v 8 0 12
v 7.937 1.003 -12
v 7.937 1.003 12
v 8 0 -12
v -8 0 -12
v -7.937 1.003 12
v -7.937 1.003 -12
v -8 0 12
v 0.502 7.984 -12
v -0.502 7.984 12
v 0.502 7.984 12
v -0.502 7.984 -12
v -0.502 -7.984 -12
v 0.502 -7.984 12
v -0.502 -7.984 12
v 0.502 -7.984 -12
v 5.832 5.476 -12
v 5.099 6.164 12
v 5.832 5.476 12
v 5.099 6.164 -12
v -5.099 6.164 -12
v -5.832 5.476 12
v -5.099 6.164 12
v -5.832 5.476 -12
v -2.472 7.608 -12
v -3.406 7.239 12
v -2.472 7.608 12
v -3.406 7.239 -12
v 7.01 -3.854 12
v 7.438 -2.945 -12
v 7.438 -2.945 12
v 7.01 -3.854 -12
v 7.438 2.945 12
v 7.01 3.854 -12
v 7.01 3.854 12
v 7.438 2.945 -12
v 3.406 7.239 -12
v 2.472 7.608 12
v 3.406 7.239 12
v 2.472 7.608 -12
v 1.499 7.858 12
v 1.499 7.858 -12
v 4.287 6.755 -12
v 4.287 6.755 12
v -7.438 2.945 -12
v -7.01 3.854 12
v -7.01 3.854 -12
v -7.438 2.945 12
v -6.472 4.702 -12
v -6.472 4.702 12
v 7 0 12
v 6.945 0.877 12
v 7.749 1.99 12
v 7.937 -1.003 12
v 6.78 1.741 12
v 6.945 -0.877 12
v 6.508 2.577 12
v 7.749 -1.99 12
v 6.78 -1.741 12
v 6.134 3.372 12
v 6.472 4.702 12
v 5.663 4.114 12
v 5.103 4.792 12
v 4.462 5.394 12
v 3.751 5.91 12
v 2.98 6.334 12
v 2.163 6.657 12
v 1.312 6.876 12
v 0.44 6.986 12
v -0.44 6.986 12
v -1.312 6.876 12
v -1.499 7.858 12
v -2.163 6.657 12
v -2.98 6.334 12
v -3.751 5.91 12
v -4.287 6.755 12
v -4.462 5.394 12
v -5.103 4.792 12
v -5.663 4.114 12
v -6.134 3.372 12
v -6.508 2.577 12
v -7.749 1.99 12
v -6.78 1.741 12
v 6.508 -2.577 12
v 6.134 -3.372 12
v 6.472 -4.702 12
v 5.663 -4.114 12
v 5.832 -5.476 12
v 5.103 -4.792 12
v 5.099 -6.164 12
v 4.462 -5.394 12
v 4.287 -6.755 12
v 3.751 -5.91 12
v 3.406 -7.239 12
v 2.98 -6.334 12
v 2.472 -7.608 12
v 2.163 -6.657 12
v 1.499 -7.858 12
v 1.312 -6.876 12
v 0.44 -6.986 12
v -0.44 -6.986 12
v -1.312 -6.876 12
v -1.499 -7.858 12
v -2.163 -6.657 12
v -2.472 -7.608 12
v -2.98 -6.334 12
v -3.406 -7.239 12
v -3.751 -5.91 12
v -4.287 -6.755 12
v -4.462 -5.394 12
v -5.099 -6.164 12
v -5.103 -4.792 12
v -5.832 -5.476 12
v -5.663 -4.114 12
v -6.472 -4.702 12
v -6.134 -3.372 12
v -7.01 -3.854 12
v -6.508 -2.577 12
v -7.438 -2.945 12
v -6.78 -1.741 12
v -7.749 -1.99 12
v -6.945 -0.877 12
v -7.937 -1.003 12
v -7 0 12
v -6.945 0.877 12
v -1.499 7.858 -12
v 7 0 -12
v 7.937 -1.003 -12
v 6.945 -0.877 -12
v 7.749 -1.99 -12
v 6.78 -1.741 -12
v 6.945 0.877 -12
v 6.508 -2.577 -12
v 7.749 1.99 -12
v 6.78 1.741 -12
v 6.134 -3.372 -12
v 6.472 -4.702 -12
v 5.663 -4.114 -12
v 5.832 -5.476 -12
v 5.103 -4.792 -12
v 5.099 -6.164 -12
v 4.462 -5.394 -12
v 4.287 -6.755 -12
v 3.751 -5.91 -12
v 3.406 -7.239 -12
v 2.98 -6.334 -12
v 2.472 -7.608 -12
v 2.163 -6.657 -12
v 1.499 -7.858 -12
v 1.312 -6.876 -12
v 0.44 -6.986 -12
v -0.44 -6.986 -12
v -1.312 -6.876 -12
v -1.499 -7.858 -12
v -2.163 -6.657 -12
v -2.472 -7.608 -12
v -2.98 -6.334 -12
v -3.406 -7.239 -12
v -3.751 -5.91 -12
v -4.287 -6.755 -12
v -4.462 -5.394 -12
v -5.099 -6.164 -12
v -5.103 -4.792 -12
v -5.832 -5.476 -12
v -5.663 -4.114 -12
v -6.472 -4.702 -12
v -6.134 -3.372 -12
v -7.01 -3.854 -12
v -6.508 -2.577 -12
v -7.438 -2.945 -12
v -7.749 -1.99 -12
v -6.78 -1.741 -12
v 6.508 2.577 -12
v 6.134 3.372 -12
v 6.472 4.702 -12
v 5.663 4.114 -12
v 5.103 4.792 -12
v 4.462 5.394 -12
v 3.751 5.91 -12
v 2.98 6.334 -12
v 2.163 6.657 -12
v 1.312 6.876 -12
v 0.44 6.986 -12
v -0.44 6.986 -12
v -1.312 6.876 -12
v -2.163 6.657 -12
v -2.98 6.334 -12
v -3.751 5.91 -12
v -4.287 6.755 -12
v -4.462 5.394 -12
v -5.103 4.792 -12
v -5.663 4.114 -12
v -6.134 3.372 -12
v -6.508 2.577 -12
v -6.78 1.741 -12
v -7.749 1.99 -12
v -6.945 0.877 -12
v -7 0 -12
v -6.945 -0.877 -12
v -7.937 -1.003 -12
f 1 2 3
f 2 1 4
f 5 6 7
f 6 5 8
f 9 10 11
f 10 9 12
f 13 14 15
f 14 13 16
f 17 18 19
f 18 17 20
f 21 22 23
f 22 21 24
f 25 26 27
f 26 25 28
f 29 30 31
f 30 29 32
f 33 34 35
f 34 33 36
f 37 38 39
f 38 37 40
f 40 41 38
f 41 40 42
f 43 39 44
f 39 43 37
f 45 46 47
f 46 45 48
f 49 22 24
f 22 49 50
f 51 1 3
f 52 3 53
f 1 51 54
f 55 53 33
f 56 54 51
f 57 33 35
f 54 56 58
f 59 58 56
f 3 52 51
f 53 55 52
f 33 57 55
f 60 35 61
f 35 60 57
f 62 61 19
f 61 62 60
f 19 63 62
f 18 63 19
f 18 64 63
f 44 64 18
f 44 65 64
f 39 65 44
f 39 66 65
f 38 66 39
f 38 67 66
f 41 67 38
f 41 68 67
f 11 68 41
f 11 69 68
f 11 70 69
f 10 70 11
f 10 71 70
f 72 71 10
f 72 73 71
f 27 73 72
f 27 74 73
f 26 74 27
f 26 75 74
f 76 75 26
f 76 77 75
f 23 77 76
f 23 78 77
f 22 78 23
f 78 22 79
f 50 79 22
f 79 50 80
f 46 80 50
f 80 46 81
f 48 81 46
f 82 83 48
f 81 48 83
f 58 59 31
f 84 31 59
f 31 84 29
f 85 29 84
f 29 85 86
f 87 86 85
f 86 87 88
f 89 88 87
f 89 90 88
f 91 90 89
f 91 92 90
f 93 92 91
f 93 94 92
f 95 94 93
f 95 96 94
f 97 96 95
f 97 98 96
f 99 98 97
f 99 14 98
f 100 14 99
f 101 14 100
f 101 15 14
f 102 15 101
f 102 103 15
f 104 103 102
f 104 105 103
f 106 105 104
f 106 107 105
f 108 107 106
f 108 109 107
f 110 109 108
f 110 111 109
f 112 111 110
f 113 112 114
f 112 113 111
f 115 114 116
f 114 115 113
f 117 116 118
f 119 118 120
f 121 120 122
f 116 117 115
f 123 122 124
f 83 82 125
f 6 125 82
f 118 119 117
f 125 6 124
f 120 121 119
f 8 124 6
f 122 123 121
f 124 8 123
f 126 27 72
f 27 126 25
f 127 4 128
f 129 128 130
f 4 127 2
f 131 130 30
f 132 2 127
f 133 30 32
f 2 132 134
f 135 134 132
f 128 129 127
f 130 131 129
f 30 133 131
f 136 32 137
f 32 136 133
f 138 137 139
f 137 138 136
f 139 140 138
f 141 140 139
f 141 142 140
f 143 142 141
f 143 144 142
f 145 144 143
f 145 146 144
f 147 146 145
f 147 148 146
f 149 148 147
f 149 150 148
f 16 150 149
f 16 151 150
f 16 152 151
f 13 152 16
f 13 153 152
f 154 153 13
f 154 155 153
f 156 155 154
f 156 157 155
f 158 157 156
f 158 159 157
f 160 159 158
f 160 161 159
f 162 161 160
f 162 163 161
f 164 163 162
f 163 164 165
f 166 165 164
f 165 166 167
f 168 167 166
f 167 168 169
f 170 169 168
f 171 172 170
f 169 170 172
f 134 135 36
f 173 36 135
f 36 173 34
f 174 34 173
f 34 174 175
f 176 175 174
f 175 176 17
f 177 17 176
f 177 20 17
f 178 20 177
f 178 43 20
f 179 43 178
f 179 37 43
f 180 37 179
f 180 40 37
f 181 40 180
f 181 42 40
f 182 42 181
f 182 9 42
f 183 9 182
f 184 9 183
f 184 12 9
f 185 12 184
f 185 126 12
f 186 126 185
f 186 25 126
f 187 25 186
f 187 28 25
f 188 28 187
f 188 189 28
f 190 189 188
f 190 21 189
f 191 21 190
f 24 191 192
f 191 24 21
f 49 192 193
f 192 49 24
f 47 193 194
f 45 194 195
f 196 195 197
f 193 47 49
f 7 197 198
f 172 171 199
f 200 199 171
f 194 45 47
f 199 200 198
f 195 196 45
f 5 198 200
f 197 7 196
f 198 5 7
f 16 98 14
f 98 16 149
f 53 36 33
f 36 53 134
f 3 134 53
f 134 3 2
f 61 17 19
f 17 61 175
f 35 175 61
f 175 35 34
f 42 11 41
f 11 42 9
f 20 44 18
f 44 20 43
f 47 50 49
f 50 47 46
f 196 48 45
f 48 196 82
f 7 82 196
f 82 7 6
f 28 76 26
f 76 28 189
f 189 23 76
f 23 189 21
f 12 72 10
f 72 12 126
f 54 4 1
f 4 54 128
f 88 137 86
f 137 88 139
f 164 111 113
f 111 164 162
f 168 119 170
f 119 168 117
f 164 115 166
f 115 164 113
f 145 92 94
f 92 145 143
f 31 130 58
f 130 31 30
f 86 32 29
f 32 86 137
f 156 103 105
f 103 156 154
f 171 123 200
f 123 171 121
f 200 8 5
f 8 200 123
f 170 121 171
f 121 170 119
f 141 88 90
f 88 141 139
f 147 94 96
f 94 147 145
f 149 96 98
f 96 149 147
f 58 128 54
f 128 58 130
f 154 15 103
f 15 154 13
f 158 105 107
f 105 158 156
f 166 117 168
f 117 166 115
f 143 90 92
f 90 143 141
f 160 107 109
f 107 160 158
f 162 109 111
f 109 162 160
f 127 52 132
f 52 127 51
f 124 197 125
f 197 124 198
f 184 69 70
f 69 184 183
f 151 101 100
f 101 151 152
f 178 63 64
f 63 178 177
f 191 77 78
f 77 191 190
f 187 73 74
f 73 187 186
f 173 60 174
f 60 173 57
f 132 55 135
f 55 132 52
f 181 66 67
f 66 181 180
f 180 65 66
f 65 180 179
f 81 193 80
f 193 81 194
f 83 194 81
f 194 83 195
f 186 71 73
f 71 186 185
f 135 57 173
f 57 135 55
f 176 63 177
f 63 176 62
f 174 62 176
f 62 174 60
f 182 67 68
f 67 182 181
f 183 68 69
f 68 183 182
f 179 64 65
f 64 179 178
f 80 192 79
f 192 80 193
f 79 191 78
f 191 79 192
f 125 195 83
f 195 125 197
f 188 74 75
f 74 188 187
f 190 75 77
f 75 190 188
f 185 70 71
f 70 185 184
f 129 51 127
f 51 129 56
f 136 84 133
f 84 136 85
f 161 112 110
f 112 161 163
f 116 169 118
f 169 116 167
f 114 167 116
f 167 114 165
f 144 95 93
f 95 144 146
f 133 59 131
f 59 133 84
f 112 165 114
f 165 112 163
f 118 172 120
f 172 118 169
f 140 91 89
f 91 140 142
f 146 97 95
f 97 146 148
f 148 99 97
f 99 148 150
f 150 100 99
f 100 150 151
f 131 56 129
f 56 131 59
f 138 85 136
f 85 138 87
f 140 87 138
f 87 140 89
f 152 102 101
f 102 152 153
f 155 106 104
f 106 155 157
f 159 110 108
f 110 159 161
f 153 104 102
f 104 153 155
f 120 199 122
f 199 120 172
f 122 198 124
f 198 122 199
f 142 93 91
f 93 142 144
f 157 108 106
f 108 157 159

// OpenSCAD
$fn = 50;


difference() {
	union() {
		translate(v = [0, 0, -12.0000000000]) {
			cylinder(h = 24, r = 8.0000000000);
		}
	}
	union() {
		translate(v = [0, 0, -100.0000000000]) {
			cylinder(h = 200, r = 7);
		}
	}
}
